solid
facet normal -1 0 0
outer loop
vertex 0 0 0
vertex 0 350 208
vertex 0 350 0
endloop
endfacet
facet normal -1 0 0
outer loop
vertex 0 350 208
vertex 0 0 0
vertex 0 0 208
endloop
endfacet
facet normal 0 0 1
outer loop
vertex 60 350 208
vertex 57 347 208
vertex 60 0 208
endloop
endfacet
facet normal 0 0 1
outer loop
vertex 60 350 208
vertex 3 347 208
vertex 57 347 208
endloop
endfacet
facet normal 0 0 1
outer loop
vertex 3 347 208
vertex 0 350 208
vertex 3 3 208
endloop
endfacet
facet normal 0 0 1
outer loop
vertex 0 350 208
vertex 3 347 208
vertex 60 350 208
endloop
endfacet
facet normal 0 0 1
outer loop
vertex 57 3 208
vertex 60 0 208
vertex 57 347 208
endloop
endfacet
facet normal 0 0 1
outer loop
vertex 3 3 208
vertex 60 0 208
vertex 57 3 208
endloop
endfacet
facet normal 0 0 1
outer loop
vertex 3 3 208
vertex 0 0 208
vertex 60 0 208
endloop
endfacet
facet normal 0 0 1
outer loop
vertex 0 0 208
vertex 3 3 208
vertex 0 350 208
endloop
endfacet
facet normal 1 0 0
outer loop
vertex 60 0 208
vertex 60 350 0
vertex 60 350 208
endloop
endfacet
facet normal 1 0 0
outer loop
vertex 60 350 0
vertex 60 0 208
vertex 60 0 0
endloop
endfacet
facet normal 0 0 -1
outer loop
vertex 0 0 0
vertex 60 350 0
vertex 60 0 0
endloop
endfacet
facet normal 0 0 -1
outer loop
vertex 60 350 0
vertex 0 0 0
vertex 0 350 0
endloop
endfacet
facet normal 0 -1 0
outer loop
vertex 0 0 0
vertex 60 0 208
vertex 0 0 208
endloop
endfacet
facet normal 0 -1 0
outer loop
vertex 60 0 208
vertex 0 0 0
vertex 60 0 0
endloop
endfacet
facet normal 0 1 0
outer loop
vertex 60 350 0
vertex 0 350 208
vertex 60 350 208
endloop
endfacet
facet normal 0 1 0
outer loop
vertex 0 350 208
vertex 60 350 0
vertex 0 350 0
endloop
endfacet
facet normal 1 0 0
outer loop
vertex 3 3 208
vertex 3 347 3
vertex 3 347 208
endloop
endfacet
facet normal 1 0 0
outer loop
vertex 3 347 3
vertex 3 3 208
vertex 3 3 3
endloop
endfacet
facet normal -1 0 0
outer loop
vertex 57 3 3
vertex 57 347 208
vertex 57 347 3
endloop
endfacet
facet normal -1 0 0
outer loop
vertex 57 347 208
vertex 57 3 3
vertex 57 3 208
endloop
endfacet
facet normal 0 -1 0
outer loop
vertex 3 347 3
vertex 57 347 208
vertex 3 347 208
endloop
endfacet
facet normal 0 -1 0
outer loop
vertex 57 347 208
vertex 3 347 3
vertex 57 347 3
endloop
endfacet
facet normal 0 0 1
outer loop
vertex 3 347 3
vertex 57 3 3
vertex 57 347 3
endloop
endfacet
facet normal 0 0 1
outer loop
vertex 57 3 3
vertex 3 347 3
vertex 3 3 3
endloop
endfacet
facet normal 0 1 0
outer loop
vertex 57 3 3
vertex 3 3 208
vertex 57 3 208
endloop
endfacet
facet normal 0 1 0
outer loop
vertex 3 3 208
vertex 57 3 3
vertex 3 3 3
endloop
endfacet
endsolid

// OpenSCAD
// file: ../../modules/hex_grid_v02.scad
module hex(hole, wall, thick){
    hole = hole;
    wall = wall;
    difference(){
        rotate([0, 0, 30]) cylinder(d = (hole + wall), h = thick, $fn = 6);
        translate([0, 0, -0.1]) rotate([0, 0, 30]) cylinder(d = hole, h = thick + 0.2, $fn = 6);
    }
}



module hexgrid(box, holediameter, wallthickness) {
    a = (holediameter + (wallthickness/2))*sin(60);
    for(x = [holediameter/2: a: box[0]]) {
        for(y = [holediameter/2: 2*a*sin(60): box[1]]) {
            translate([x, y, 0]) hex(holediameter, wallthickness, box[2]);
            translate([x + a*cos(60), y + a*sin(60), 0]) hex(holediameter, wallthickness, box[2]);

        }
    }
        
}

// first arg is vector that defines the bounding box, length, width, height
// second arg in the 'diameter' of the holes. In OpenScad, this refers to the corner-to-corner diameter, not flat-to-flat
// this diameter is 2/sqrt(3) times larger than flat to flat
// third arg is wall thickness.  This also is measured that the corners, not the flats. 

hexgrid([25, 25, 1.5], 1, 0.5);


echo(2/sqrt(3));
// main file
use <./../../modules/hex_grid_v02.scad>;

module container() {
    difference() {
        cube([60, 350, 208]);
        translate([3, 3, 3])
        cube([54, 344, 208]);
    }
}

module handle() {
    rotate([-45, 0, 0])
    cube([40, 40, 5]);

    cube([40, 5, 100]);

    translate([0, 0, 100])
    rotate([45, 0, 0])
    cube([40, 40, 5]);
    
}

container();
